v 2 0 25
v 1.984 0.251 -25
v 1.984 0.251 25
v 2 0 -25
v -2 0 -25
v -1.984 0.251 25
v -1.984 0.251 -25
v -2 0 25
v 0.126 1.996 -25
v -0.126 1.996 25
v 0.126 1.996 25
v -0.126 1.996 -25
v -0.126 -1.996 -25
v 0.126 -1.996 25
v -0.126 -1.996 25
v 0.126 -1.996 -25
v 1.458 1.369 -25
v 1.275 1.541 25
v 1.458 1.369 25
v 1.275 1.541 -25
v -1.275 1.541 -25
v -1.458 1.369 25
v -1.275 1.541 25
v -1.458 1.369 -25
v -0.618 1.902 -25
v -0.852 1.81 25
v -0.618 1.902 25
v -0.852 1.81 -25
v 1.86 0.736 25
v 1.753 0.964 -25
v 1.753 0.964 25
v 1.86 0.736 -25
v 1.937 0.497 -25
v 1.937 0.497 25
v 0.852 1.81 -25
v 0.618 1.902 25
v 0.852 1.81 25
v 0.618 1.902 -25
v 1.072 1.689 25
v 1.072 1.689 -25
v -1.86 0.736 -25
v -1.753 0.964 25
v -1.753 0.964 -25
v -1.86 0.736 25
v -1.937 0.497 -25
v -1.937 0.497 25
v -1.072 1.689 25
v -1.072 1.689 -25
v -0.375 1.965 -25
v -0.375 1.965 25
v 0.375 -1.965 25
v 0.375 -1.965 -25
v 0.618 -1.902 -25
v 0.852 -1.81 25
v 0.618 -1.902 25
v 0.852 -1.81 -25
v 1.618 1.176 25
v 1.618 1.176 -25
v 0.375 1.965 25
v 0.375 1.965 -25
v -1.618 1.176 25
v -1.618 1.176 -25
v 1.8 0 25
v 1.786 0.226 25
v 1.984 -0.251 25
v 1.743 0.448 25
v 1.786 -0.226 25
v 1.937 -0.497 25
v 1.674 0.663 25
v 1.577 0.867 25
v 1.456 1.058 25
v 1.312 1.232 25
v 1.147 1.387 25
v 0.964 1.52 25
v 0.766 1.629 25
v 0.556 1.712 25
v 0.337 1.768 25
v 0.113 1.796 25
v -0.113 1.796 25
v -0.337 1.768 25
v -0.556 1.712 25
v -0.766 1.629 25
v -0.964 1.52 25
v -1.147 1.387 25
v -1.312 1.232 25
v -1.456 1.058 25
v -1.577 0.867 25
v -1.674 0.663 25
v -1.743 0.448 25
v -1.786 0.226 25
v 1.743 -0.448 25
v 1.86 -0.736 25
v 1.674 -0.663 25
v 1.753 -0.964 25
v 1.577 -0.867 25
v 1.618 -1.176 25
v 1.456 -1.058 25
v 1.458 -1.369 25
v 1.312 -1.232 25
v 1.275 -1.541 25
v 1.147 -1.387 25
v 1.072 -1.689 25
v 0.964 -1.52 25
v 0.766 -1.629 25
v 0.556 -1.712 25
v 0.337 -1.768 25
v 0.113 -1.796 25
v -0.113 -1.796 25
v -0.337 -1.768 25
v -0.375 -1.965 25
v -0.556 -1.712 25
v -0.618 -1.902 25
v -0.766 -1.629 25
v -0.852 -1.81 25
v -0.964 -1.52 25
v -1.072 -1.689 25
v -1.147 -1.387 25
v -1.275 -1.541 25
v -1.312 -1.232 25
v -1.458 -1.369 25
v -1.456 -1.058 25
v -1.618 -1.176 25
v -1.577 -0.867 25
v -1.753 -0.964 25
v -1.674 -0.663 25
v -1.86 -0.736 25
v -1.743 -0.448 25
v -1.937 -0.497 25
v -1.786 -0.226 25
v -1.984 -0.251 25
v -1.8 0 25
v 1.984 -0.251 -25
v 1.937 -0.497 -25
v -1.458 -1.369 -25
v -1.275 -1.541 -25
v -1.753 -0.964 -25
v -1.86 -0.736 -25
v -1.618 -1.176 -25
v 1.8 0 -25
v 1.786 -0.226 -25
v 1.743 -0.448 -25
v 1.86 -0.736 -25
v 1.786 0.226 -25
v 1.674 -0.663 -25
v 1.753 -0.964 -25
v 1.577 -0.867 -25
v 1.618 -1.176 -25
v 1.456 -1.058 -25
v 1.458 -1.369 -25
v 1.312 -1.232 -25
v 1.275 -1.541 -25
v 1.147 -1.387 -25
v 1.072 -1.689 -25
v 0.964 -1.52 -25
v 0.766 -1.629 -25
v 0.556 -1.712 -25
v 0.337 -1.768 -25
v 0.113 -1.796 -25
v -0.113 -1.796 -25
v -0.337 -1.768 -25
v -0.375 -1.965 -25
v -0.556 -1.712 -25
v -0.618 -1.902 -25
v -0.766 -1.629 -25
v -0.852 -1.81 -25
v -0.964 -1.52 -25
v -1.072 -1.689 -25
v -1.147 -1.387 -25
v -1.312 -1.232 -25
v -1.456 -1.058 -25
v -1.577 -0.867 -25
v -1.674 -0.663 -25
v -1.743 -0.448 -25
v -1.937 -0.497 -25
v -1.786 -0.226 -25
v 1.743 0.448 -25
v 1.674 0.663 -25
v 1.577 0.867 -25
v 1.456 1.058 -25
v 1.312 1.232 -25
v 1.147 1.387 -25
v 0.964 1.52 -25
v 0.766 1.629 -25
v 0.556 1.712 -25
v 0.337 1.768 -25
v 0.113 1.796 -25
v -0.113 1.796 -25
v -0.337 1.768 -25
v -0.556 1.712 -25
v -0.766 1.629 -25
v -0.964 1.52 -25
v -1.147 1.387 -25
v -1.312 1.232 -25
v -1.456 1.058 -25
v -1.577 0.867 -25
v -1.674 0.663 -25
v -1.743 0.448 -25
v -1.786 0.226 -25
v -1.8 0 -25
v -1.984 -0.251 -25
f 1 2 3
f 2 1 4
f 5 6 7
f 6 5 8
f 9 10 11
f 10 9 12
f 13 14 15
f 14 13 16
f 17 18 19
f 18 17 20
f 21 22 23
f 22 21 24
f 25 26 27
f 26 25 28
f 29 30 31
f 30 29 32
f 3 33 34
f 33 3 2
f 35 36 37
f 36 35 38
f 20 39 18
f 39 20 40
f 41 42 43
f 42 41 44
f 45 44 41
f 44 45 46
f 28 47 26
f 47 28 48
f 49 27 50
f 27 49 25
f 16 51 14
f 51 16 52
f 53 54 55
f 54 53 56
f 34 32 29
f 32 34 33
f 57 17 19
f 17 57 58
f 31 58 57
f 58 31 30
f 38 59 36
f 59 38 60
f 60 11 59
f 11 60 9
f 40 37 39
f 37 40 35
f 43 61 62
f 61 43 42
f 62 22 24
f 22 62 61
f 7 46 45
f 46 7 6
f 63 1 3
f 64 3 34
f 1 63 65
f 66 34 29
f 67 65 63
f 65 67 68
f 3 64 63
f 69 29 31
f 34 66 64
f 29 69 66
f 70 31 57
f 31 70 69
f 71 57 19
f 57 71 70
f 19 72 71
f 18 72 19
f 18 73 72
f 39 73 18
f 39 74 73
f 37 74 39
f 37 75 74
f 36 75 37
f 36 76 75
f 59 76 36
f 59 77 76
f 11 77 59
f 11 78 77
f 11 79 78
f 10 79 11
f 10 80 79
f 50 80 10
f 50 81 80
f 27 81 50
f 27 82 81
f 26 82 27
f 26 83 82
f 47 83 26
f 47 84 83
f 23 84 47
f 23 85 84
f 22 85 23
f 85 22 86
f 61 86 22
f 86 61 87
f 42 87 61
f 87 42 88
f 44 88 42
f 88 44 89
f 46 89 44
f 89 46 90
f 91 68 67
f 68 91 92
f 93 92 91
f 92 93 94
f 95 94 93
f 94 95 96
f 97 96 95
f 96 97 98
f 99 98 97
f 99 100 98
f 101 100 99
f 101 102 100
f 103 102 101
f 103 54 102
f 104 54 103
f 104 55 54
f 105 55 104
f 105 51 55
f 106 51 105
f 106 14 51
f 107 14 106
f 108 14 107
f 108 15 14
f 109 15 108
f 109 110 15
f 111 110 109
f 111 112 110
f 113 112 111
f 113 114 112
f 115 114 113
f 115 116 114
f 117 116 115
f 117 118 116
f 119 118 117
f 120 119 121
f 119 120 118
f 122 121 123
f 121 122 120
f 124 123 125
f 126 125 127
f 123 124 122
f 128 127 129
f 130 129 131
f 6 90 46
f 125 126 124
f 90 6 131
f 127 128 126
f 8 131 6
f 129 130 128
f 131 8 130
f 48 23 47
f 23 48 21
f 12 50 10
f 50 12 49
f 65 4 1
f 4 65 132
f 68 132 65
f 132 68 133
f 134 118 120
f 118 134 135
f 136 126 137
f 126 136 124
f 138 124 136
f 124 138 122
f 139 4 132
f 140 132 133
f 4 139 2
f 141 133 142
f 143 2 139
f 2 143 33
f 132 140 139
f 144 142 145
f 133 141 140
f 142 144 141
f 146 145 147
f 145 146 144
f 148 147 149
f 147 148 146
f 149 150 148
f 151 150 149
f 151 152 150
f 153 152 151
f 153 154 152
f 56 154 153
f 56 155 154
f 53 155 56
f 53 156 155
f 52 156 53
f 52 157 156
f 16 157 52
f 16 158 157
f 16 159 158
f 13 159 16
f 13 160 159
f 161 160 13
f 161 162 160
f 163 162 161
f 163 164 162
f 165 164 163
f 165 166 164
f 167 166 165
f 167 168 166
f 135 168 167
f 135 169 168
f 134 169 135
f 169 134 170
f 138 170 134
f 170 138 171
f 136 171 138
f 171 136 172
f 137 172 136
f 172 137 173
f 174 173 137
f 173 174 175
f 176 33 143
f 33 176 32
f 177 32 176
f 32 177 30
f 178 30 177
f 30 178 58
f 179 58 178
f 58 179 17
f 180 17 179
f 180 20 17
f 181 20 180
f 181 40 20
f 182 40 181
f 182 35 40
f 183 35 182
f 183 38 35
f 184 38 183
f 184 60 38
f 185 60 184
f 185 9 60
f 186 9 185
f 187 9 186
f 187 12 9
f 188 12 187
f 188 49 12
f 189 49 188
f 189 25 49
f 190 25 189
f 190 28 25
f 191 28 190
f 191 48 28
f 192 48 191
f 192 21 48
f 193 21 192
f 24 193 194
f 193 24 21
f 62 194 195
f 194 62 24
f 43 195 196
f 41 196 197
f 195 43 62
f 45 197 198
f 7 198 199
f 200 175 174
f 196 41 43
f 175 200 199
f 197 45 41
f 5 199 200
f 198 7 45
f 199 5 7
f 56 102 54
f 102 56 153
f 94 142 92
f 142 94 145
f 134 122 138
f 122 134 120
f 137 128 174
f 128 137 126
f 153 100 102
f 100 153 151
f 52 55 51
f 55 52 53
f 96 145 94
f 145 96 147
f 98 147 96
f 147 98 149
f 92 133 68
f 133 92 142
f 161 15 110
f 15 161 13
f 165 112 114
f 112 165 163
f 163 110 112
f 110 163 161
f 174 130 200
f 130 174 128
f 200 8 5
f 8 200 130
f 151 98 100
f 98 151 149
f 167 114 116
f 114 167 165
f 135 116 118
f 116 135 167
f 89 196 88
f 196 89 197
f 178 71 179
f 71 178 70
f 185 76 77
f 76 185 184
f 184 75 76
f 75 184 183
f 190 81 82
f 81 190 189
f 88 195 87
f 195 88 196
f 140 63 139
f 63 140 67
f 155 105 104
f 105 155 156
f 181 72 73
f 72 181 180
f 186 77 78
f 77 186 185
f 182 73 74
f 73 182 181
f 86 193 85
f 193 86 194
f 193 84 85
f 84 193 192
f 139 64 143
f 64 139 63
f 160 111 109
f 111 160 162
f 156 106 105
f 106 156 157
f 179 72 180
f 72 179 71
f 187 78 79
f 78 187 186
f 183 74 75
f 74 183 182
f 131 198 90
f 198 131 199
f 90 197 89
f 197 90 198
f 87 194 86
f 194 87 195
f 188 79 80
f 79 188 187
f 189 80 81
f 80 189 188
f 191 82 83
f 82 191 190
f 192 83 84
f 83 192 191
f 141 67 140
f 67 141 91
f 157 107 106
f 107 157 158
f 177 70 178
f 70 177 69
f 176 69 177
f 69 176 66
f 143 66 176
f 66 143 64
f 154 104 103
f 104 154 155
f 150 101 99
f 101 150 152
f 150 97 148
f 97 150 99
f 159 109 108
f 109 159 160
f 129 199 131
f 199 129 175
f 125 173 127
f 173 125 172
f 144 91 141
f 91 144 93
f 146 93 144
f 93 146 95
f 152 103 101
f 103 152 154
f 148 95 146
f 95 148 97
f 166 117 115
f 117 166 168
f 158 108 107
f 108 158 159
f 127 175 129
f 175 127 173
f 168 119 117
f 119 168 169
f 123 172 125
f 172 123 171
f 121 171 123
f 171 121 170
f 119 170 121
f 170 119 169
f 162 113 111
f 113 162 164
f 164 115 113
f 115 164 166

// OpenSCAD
$fn = 50;


difference() {
	union() {
		translate(v = [0, 0, -25.0000000000]) {
			cylinder(h = 50, r = 2.0000000000);
		}
	}
	union() {
		translate(v = [0, 0, -100.0000000000]) {
			cylinder(h = 200, r = 1.8000000000);
		}
	}
}
